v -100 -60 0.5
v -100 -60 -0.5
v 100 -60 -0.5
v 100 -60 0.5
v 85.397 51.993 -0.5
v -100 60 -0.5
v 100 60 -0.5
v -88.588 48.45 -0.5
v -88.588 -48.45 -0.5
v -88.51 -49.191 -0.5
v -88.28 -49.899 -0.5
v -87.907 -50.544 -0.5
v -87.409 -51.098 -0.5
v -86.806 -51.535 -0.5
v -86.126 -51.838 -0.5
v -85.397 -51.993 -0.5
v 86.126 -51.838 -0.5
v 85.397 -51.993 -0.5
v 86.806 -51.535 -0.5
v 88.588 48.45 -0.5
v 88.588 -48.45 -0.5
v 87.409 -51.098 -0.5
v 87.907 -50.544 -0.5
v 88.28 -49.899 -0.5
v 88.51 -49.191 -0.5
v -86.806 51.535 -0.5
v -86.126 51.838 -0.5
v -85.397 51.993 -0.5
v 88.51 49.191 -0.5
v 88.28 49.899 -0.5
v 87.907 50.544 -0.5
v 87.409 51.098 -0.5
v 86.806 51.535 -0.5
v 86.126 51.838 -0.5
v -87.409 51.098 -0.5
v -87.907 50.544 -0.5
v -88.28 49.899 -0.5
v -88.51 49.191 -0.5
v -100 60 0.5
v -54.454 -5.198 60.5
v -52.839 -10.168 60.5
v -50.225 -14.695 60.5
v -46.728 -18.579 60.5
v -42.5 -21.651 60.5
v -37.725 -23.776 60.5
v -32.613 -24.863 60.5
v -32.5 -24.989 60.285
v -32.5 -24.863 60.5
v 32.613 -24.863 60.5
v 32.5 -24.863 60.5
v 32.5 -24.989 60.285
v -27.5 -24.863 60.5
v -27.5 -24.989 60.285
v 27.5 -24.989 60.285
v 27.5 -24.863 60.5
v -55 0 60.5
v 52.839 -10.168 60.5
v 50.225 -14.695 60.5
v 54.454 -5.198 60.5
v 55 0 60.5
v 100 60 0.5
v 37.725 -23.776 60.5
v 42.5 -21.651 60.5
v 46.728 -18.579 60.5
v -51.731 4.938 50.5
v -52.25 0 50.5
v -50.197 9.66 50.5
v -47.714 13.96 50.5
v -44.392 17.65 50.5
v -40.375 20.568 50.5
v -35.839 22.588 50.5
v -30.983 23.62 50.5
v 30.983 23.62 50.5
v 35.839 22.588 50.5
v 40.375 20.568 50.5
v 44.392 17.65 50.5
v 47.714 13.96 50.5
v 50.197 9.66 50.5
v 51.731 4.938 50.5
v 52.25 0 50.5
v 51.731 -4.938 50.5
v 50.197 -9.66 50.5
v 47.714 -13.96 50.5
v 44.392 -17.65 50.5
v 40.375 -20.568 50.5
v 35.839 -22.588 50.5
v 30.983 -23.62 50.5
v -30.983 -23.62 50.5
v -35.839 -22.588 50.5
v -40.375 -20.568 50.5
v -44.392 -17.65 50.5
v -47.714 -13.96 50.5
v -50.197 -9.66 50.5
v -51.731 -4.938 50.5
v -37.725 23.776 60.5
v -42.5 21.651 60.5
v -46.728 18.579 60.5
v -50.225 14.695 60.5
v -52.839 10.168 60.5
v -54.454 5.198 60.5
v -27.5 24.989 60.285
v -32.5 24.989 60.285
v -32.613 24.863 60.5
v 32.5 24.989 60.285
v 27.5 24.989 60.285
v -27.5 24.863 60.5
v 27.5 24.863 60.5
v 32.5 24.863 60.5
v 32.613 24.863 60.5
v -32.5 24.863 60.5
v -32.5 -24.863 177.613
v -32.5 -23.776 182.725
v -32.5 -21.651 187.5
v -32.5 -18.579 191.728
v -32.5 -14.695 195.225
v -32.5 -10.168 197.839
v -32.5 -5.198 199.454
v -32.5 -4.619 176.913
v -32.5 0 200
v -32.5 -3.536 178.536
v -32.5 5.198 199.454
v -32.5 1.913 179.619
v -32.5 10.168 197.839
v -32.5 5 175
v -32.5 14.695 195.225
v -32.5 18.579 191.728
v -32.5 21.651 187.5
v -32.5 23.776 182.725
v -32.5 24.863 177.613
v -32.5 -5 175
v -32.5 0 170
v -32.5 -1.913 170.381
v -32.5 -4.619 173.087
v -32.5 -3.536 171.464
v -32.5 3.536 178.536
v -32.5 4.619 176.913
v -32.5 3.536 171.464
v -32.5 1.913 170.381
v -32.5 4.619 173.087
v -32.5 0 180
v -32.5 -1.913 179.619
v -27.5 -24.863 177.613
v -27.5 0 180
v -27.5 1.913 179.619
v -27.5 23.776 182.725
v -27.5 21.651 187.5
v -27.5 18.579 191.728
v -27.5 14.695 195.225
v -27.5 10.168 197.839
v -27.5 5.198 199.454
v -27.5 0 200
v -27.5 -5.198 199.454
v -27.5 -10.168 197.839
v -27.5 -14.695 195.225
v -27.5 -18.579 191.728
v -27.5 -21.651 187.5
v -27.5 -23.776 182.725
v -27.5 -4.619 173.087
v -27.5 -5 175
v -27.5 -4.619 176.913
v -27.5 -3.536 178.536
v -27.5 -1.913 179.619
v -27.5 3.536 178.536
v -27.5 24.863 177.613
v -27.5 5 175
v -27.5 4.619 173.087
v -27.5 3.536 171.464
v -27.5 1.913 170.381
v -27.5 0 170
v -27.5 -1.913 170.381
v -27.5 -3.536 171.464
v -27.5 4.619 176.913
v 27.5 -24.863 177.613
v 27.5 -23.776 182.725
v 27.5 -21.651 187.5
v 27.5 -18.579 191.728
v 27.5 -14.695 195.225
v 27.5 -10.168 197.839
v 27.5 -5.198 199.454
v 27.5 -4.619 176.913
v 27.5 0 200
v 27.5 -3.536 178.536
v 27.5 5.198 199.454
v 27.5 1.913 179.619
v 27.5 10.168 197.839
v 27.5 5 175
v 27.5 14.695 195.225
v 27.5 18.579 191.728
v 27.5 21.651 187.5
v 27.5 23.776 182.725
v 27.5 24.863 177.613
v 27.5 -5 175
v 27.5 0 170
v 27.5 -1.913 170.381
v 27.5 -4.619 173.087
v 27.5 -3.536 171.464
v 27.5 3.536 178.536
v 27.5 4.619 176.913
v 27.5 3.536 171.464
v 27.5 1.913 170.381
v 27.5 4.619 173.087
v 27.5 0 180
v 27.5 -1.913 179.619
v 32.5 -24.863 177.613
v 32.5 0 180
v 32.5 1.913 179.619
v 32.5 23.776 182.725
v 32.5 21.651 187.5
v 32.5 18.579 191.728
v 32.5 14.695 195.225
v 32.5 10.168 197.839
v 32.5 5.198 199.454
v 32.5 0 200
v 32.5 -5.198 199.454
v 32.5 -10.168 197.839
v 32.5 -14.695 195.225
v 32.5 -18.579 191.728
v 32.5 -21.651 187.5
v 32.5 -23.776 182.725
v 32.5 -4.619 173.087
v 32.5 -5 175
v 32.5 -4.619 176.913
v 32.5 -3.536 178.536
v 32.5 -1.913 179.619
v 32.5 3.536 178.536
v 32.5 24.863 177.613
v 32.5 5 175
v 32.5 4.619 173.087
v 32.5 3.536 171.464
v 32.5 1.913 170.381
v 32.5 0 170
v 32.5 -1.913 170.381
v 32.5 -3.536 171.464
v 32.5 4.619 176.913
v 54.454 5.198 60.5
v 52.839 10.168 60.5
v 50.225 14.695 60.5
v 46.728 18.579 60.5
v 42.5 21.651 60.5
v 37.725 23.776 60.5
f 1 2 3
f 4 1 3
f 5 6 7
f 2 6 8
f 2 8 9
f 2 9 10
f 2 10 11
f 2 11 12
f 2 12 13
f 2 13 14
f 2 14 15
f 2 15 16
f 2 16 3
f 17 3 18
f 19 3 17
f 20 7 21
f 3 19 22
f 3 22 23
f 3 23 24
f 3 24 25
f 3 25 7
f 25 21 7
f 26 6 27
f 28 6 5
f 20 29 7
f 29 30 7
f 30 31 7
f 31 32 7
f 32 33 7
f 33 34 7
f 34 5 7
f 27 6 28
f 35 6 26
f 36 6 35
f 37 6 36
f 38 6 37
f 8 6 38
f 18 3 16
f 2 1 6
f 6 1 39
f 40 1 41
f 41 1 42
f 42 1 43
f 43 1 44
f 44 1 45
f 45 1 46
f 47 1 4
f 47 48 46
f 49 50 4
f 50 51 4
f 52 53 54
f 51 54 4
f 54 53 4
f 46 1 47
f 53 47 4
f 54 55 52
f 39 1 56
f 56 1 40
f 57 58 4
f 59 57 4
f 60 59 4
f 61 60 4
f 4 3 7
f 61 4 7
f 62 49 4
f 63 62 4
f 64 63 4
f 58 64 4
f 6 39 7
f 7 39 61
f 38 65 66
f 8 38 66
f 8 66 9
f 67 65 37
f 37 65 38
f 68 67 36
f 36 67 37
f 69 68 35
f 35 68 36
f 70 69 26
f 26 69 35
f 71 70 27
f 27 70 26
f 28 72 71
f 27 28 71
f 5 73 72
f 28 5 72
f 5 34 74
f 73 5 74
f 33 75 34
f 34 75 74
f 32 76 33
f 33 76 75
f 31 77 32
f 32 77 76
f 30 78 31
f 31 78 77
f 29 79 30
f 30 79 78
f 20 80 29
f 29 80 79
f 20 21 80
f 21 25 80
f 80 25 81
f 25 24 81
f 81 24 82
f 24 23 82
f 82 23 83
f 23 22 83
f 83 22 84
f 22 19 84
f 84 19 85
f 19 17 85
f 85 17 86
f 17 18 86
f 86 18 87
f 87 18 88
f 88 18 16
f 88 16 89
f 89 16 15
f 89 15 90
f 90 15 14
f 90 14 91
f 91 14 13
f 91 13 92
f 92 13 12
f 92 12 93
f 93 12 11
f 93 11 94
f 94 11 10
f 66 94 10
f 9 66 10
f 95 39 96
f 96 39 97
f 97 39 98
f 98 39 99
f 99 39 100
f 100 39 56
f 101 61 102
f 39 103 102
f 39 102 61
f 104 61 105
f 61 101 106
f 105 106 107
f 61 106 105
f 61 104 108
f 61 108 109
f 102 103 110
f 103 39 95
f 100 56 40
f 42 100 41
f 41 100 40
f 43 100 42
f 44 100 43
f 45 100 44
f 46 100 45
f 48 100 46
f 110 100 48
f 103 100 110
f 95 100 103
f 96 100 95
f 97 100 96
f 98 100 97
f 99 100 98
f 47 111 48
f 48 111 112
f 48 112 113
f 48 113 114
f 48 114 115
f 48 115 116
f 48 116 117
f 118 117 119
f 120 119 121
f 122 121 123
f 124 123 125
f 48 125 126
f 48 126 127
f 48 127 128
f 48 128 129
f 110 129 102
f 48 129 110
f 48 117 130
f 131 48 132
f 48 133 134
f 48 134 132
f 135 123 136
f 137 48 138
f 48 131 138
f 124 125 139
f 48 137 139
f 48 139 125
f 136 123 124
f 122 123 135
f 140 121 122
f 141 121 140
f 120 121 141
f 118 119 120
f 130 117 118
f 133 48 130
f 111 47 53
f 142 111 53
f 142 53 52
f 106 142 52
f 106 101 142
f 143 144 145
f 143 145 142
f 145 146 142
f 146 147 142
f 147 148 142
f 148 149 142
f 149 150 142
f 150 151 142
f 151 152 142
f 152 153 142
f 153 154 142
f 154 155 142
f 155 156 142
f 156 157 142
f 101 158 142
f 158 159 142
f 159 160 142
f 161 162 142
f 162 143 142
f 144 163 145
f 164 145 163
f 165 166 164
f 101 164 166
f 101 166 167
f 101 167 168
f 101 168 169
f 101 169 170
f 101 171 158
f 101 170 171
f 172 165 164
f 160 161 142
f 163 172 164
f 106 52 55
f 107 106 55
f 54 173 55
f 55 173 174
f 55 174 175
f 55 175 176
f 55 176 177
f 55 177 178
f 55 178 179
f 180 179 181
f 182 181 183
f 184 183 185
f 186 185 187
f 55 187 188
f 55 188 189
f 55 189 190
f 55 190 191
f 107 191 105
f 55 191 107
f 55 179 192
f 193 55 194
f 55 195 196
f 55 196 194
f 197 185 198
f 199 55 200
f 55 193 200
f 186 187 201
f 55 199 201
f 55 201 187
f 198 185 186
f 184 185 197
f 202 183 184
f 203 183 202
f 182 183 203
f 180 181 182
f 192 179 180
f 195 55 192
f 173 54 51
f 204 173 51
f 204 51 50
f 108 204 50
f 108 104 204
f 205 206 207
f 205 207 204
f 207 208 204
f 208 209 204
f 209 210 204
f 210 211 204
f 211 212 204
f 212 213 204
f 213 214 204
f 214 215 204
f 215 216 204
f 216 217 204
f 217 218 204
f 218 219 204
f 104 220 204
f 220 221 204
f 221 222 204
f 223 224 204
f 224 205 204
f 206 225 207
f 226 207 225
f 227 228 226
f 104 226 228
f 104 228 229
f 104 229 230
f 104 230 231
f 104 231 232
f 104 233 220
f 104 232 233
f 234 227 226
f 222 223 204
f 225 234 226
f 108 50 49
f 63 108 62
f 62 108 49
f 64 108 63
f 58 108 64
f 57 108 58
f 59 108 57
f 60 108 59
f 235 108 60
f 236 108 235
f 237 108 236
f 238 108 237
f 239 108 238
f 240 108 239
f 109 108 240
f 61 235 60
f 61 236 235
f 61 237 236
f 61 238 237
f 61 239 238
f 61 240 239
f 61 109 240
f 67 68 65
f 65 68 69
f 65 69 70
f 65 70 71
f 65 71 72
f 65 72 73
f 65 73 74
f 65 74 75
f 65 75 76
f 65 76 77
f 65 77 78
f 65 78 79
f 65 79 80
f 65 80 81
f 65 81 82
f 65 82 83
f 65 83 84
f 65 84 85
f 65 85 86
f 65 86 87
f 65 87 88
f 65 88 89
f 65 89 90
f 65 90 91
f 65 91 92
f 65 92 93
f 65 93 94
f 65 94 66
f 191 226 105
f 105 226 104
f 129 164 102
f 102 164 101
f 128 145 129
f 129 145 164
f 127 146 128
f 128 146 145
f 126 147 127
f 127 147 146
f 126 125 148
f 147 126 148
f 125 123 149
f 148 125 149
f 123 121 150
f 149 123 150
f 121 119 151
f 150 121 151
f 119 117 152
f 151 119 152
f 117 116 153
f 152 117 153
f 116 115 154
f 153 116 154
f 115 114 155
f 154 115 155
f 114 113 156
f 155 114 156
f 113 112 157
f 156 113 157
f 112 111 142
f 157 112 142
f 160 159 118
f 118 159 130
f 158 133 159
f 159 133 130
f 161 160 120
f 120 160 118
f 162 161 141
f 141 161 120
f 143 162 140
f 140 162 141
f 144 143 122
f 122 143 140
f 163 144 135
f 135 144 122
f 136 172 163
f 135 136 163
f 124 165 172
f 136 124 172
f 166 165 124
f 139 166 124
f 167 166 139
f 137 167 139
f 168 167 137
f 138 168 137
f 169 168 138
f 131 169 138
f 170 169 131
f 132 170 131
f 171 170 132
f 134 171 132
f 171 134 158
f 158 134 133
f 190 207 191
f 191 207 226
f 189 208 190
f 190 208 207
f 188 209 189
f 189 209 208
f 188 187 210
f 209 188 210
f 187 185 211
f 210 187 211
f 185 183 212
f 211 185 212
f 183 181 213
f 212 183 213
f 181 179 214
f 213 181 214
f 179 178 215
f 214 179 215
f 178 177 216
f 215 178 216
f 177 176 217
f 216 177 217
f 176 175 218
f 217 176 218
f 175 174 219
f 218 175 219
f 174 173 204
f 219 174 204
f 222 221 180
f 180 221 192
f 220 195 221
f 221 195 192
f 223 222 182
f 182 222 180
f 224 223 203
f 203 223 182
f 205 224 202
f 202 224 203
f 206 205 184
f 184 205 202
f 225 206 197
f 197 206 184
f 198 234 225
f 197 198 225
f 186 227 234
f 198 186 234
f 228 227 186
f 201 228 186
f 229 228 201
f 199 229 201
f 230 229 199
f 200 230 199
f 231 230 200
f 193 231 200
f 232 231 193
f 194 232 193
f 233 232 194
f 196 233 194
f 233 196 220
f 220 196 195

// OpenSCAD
//  Scientific Equipment Project  
//  Open Source 3D Printing Fall 2014
//  Brett Barker

// Base for specimen spinner

// variables

// base parameters
h_base = 60;
w_base = 200;
l_base = 120;
shell = 10;

//shell thickness
base_scale = 1-(shell/w_base);

//arm parameters
h_arm = 150;
w_arm = 5;
l_arm = 50;
r_bolt = 10;

//motor box parameters
r_bolt = 5;
w_box = 60;

//portal parameters
pw = 10;
ph = 10;


// bottom
module base(){
	hull(){
	translate([w_box/2,0,h_base])cylinder(1,l_arm/2,l_arm/2,center=true);
	translate([w_box/-2,0,h_base])cylinder(1,l_arm/2,l_arm/2,center=true);
	cube([w_base,l_base,1],center=true);
};};

// arms
module arm_full(){
translate([0,0,0.5*l_arm])
hull(){
translate([0,0,h_arm])rotate(90,[0,1,0])cylinder(w_arm,l_arm/2,l_arm/2,center=true);
cube([w_arm,l_arm,l_arm],center=true);
};
};

// bolt hole
module arm(){
difference(){
	arm_full();
	translate([0,0,h_arm+0.5*l_arm])rotate(90,[0,1,0])cylinder(w_arm+5,r_bolt,r_bolt,center=true);
};
};
module solid_base(){
union(){
 base();
translate([w_box/2,0,0])arm();
translate([-(w_box/2),0,0])arm();
};};

module hollow_base(){
difference(){
solid_base();
translate([0,0,-1*shell])scale([base_scale,base_scale,1])base();
};};


hollow_base();

//translate([0,0,0.5*h_base])rotate(90,[1,0,0])cylinder(l_base,ph,ph,center=true)
